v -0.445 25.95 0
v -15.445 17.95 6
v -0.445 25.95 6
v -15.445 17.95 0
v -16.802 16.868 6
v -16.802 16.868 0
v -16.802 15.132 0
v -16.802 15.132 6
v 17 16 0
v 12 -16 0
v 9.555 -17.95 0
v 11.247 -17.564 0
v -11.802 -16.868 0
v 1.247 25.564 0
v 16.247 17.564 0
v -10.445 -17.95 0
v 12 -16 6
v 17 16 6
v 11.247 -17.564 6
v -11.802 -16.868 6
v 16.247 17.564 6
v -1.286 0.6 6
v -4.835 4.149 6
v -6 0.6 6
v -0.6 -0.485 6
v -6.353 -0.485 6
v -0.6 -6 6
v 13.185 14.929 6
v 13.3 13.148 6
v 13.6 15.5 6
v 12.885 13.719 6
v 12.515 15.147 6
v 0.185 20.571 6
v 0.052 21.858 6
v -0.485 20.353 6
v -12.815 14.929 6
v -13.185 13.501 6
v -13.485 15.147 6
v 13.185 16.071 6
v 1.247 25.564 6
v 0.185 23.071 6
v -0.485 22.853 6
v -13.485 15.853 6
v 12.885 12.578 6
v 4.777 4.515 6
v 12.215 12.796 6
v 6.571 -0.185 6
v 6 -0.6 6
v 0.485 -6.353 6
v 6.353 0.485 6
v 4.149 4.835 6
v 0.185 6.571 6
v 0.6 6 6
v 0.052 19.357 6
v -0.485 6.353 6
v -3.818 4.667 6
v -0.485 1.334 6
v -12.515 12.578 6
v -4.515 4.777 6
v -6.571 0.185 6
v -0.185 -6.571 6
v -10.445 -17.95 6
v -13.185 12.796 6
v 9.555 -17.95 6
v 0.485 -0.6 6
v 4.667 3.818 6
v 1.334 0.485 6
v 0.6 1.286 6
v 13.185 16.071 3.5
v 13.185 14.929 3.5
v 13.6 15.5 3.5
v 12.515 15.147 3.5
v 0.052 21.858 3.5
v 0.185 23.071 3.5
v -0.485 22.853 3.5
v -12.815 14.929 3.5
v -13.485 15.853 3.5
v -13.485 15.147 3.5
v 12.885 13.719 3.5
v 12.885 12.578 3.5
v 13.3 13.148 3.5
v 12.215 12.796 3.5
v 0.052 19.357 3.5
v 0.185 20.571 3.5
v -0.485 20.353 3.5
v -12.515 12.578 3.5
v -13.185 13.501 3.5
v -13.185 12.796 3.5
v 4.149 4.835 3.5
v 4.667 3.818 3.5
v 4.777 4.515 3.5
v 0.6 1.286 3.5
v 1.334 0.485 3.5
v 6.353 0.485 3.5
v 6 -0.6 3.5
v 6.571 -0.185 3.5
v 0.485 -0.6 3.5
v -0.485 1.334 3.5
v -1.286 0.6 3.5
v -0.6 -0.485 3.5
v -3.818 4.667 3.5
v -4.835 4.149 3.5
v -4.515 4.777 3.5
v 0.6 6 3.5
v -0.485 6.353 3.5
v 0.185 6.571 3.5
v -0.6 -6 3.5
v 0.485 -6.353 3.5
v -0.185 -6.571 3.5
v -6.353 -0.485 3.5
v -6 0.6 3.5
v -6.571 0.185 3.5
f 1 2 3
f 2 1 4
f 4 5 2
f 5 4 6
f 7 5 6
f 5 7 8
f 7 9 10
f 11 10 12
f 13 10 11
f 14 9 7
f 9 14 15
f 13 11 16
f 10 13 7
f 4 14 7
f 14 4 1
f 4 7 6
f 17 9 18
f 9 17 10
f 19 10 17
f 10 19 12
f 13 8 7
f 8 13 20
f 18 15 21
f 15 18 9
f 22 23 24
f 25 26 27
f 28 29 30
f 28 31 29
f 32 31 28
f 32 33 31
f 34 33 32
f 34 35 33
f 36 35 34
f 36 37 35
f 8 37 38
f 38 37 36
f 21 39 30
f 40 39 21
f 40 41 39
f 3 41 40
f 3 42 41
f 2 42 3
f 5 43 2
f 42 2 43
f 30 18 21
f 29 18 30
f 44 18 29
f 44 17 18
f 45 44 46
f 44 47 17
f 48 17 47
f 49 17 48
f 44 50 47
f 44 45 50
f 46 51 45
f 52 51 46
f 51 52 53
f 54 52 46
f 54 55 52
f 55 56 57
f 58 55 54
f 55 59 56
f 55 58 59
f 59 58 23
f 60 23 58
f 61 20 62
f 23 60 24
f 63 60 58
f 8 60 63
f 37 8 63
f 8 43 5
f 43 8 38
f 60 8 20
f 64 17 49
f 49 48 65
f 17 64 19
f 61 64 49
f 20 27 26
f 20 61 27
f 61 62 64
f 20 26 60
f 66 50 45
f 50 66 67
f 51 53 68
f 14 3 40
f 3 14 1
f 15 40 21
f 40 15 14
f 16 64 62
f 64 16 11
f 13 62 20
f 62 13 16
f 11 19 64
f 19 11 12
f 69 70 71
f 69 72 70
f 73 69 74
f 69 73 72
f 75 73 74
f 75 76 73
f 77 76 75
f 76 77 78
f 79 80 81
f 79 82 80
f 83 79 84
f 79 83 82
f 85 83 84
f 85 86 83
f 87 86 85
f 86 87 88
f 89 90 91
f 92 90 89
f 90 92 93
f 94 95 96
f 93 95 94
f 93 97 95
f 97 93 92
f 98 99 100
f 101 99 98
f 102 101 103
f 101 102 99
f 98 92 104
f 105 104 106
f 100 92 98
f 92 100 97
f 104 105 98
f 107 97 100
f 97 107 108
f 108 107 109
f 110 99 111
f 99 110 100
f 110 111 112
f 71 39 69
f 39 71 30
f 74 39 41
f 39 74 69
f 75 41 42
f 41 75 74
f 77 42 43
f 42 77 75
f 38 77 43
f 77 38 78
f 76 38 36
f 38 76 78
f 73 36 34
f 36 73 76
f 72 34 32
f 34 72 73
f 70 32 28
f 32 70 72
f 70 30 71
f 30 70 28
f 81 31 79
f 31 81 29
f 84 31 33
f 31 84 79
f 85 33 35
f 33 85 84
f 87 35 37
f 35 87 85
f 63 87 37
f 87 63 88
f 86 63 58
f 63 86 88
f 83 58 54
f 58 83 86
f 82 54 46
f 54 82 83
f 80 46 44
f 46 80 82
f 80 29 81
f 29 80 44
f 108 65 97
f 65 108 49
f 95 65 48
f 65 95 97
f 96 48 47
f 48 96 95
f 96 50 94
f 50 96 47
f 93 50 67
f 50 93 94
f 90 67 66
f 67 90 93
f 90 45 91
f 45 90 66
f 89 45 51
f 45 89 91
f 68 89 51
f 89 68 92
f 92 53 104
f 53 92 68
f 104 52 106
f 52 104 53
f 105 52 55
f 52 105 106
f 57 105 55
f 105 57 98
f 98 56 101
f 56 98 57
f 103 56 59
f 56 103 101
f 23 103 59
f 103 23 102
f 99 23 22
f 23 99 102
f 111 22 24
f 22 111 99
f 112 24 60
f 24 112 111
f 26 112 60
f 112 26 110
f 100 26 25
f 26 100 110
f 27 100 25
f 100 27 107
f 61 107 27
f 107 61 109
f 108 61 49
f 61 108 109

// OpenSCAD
// file: moves/step.scad
module shogi_move_step(edges=[0], length=6, thick=0.6) {
    for (a=edges) {
        rotate(a=a*45) hull() {
            circle(thick);
            translate([0, length, 0]) circle(thick);
        }
    }
}
// file: ranks/rank2.scad
module shogi_rank_2(thick=0.6) {
    hull() {
        translate([-12.7, 13.148182, 0]) circle(thick);
        translate([0, 20, 0]) circle(thick);
    }

    hull() {
        translate([0, 20, 0]) circle(thick);
        translate([12.7, 13.148182, 0]) circle(thick);
    }
}
// file: ranks/rank1.scad
module shogi_rank_1(thick=0.6) {
    hull() {
        translate([-13, 15.5, 0]) circle(thick);
        translate([0, 22.5, 0]) circle(thick);
    }

    hull() {
        translate([0, 22.5, 0]) circle(thick);
        translate([13, 15.5, 0]) circle(thick);
    }
}
// file: koma/slim.scad
module shogi_koma_slim(width=30, length=40, rounding=2) {
    points=[
        [width/6 , 0],
        [0, length*0.8],
        [width/2, length],
        [width, length*0.8],
        [5*width/6, 0]
    ];

    minkowski() {
        polygon(points);
        circle(rounding);
    }
}
// file: base/piece.scad
module shogi_piece(thick=6) {
    unit=thick/12;

    difference() {
        translate([-15, -16, 0])
        linear_extrude(thick) children(0);
        translate([0, 0, -1*unit]) linear_extrude(6*unit) children(1);
        translate([0, 0, 7*unit]) linear_extrude(6*unit) children(2);
        translate([0, 0, 9*unit]) linear_extrude(6*unit) children(3);
    }
}
// main file
use <base/piece.scad>;
use <koma/slim.scad>;
use <ranks/rank1.scad>;
use <ranks/rank2.scad>;
use <moves/step.scad>;

shogi_piece() {
    shogi_koma_slim();
    union() {}
    union() {
        shogi_rank_1();
        shogi_rank_2();
        shogi_move_step(edges=[0, 1, 2, 4, 6, 7]);
    }
    union() {}
}
